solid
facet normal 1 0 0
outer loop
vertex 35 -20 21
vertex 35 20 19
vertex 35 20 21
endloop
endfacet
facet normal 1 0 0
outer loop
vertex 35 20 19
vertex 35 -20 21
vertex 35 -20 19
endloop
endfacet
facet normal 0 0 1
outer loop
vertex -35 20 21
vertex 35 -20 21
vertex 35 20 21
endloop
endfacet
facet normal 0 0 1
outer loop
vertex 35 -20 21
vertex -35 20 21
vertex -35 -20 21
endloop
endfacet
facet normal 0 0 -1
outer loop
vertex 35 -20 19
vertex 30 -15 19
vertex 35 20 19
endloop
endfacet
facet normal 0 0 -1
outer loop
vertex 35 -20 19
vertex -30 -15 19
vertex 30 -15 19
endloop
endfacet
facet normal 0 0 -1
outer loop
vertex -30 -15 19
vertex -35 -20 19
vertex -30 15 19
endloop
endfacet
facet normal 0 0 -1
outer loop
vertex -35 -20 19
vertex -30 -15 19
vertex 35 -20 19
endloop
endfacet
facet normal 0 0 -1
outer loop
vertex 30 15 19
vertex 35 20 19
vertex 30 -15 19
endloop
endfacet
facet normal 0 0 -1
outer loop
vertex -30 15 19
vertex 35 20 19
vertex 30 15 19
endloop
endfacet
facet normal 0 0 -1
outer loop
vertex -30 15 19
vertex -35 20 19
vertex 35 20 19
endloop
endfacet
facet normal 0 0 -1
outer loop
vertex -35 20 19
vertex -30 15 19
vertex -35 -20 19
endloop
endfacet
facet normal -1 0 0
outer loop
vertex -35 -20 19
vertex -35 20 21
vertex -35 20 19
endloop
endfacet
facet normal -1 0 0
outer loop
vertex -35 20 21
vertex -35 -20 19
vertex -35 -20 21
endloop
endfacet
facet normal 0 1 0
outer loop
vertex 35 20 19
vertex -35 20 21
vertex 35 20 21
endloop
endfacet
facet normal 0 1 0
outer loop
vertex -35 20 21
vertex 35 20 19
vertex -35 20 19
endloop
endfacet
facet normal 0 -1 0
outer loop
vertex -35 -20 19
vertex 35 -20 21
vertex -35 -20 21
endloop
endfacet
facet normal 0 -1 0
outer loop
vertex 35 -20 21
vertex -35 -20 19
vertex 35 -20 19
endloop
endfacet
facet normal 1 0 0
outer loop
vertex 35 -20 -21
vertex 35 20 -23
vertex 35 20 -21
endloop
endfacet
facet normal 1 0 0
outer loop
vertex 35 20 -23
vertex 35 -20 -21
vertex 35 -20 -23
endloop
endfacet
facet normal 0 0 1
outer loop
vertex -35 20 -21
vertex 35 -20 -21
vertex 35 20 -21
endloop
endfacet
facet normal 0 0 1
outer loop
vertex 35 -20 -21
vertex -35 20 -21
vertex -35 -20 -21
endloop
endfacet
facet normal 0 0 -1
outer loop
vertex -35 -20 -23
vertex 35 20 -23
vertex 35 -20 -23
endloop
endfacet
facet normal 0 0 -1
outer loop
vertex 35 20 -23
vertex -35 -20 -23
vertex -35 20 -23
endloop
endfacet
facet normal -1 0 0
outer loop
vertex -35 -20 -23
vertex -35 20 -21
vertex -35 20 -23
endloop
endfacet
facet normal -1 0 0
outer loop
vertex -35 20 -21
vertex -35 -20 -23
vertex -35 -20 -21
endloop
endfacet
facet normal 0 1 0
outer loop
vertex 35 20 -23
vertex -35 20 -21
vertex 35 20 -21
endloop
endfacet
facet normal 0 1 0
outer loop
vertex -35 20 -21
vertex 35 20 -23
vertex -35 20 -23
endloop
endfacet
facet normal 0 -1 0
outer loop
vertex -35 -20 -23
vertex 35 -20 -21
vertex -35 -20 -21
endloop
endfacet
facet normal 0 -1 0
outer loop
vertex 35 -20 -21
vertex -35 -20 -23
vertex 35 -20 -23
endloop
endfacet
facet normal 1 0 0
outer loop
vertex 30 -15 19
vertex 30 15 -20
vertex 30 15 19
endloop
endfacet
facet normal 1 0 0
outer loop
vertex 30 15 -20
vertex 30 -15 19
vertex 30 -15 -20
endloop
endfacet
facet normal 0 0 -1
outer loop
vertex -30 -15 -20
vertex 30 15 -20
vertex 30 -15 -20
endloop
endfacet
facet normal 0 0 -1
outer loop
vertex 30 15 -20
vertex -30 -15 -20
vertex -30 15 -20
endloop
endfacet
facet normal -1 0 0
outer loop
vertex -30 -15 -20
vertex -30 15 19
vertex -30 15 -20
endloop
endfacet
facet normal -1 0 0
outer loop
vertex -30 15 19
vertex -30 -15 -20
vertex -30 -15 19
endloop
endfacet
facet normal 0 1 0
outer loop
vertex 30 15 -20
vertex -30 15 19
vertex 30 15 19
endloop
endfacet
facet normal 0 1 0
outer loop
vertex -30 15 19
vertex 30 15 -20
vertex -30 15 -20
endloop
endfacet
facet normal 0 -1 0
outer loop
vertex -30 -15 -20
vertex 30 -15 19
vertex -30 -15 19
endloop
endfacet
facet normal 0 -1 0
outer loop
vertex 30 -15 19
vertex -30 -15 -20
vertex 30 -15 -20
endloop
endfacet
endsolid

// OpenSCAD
// Parameters
outer_length = 60;
outer_width = 30;
outer_height = 40;
wall_thickness = 3;
flange_thickness = 2;
flange_extension = 5;

// Main outer block
module outer_block() {
    cube([outer_length, outer_width, outer_height], center = true);
}

// Tapered inner cavity
module tapered_cavity() {
    top_length = outer_length - 2 * wall_thickness;
    top_width = outer_width - 2 * wall_thickness;
    bottom_length = top_length * 0.6;
    bottom_width = top_width * 0.6;
    height = outer_height;

    polyhedron(
        points = [
            // Top face (larger)
            [ -top_length/2, -top_width/2, height/2],
            [  top_length/2, -top_width/2, height/2],
            [  top_length/2,  top_width/2, height/2],
            [ -top_length/2,  top_width/2, height/2],
            // Bottom face (smaller)
            [ -bottom_length/2, -bottom_width/2, -height/2],
            [  bottom_length/2, -bottom_width/2, -height/2],
            [  bottom_length/2,  bottom_width/2, -height/2],
            [ -bottom_length/2,  bottom_width/2, -height/2]
        ],
        faces = [
            [0,1,2,3], // top
            [4,5,6,7], // bottom
            [0,1,5,4], // side
            [1,2,6,5],
            [2,3,7,6],
            [3,0,4,7]
        ]
    );
}

// Flanges
module flanges() {
    // Top flange
    translate([0, 0, outer_height/2])
        cube([outer_length + 2*flange_extension, outer_width + 2*flange_extension, flange_thickness], center = true);
    // Bottom flange
    translate([0, 0, -outer_height/2 - flange_thickness])
        cube([outer_length + 2*flange_extension, outer_width + 2*flange_extension, flange_thickness], center = true);
}

// Final model
difference() {
    union() {
        outer_block();
        flanges();
    }
    tapered_cavity();
}
